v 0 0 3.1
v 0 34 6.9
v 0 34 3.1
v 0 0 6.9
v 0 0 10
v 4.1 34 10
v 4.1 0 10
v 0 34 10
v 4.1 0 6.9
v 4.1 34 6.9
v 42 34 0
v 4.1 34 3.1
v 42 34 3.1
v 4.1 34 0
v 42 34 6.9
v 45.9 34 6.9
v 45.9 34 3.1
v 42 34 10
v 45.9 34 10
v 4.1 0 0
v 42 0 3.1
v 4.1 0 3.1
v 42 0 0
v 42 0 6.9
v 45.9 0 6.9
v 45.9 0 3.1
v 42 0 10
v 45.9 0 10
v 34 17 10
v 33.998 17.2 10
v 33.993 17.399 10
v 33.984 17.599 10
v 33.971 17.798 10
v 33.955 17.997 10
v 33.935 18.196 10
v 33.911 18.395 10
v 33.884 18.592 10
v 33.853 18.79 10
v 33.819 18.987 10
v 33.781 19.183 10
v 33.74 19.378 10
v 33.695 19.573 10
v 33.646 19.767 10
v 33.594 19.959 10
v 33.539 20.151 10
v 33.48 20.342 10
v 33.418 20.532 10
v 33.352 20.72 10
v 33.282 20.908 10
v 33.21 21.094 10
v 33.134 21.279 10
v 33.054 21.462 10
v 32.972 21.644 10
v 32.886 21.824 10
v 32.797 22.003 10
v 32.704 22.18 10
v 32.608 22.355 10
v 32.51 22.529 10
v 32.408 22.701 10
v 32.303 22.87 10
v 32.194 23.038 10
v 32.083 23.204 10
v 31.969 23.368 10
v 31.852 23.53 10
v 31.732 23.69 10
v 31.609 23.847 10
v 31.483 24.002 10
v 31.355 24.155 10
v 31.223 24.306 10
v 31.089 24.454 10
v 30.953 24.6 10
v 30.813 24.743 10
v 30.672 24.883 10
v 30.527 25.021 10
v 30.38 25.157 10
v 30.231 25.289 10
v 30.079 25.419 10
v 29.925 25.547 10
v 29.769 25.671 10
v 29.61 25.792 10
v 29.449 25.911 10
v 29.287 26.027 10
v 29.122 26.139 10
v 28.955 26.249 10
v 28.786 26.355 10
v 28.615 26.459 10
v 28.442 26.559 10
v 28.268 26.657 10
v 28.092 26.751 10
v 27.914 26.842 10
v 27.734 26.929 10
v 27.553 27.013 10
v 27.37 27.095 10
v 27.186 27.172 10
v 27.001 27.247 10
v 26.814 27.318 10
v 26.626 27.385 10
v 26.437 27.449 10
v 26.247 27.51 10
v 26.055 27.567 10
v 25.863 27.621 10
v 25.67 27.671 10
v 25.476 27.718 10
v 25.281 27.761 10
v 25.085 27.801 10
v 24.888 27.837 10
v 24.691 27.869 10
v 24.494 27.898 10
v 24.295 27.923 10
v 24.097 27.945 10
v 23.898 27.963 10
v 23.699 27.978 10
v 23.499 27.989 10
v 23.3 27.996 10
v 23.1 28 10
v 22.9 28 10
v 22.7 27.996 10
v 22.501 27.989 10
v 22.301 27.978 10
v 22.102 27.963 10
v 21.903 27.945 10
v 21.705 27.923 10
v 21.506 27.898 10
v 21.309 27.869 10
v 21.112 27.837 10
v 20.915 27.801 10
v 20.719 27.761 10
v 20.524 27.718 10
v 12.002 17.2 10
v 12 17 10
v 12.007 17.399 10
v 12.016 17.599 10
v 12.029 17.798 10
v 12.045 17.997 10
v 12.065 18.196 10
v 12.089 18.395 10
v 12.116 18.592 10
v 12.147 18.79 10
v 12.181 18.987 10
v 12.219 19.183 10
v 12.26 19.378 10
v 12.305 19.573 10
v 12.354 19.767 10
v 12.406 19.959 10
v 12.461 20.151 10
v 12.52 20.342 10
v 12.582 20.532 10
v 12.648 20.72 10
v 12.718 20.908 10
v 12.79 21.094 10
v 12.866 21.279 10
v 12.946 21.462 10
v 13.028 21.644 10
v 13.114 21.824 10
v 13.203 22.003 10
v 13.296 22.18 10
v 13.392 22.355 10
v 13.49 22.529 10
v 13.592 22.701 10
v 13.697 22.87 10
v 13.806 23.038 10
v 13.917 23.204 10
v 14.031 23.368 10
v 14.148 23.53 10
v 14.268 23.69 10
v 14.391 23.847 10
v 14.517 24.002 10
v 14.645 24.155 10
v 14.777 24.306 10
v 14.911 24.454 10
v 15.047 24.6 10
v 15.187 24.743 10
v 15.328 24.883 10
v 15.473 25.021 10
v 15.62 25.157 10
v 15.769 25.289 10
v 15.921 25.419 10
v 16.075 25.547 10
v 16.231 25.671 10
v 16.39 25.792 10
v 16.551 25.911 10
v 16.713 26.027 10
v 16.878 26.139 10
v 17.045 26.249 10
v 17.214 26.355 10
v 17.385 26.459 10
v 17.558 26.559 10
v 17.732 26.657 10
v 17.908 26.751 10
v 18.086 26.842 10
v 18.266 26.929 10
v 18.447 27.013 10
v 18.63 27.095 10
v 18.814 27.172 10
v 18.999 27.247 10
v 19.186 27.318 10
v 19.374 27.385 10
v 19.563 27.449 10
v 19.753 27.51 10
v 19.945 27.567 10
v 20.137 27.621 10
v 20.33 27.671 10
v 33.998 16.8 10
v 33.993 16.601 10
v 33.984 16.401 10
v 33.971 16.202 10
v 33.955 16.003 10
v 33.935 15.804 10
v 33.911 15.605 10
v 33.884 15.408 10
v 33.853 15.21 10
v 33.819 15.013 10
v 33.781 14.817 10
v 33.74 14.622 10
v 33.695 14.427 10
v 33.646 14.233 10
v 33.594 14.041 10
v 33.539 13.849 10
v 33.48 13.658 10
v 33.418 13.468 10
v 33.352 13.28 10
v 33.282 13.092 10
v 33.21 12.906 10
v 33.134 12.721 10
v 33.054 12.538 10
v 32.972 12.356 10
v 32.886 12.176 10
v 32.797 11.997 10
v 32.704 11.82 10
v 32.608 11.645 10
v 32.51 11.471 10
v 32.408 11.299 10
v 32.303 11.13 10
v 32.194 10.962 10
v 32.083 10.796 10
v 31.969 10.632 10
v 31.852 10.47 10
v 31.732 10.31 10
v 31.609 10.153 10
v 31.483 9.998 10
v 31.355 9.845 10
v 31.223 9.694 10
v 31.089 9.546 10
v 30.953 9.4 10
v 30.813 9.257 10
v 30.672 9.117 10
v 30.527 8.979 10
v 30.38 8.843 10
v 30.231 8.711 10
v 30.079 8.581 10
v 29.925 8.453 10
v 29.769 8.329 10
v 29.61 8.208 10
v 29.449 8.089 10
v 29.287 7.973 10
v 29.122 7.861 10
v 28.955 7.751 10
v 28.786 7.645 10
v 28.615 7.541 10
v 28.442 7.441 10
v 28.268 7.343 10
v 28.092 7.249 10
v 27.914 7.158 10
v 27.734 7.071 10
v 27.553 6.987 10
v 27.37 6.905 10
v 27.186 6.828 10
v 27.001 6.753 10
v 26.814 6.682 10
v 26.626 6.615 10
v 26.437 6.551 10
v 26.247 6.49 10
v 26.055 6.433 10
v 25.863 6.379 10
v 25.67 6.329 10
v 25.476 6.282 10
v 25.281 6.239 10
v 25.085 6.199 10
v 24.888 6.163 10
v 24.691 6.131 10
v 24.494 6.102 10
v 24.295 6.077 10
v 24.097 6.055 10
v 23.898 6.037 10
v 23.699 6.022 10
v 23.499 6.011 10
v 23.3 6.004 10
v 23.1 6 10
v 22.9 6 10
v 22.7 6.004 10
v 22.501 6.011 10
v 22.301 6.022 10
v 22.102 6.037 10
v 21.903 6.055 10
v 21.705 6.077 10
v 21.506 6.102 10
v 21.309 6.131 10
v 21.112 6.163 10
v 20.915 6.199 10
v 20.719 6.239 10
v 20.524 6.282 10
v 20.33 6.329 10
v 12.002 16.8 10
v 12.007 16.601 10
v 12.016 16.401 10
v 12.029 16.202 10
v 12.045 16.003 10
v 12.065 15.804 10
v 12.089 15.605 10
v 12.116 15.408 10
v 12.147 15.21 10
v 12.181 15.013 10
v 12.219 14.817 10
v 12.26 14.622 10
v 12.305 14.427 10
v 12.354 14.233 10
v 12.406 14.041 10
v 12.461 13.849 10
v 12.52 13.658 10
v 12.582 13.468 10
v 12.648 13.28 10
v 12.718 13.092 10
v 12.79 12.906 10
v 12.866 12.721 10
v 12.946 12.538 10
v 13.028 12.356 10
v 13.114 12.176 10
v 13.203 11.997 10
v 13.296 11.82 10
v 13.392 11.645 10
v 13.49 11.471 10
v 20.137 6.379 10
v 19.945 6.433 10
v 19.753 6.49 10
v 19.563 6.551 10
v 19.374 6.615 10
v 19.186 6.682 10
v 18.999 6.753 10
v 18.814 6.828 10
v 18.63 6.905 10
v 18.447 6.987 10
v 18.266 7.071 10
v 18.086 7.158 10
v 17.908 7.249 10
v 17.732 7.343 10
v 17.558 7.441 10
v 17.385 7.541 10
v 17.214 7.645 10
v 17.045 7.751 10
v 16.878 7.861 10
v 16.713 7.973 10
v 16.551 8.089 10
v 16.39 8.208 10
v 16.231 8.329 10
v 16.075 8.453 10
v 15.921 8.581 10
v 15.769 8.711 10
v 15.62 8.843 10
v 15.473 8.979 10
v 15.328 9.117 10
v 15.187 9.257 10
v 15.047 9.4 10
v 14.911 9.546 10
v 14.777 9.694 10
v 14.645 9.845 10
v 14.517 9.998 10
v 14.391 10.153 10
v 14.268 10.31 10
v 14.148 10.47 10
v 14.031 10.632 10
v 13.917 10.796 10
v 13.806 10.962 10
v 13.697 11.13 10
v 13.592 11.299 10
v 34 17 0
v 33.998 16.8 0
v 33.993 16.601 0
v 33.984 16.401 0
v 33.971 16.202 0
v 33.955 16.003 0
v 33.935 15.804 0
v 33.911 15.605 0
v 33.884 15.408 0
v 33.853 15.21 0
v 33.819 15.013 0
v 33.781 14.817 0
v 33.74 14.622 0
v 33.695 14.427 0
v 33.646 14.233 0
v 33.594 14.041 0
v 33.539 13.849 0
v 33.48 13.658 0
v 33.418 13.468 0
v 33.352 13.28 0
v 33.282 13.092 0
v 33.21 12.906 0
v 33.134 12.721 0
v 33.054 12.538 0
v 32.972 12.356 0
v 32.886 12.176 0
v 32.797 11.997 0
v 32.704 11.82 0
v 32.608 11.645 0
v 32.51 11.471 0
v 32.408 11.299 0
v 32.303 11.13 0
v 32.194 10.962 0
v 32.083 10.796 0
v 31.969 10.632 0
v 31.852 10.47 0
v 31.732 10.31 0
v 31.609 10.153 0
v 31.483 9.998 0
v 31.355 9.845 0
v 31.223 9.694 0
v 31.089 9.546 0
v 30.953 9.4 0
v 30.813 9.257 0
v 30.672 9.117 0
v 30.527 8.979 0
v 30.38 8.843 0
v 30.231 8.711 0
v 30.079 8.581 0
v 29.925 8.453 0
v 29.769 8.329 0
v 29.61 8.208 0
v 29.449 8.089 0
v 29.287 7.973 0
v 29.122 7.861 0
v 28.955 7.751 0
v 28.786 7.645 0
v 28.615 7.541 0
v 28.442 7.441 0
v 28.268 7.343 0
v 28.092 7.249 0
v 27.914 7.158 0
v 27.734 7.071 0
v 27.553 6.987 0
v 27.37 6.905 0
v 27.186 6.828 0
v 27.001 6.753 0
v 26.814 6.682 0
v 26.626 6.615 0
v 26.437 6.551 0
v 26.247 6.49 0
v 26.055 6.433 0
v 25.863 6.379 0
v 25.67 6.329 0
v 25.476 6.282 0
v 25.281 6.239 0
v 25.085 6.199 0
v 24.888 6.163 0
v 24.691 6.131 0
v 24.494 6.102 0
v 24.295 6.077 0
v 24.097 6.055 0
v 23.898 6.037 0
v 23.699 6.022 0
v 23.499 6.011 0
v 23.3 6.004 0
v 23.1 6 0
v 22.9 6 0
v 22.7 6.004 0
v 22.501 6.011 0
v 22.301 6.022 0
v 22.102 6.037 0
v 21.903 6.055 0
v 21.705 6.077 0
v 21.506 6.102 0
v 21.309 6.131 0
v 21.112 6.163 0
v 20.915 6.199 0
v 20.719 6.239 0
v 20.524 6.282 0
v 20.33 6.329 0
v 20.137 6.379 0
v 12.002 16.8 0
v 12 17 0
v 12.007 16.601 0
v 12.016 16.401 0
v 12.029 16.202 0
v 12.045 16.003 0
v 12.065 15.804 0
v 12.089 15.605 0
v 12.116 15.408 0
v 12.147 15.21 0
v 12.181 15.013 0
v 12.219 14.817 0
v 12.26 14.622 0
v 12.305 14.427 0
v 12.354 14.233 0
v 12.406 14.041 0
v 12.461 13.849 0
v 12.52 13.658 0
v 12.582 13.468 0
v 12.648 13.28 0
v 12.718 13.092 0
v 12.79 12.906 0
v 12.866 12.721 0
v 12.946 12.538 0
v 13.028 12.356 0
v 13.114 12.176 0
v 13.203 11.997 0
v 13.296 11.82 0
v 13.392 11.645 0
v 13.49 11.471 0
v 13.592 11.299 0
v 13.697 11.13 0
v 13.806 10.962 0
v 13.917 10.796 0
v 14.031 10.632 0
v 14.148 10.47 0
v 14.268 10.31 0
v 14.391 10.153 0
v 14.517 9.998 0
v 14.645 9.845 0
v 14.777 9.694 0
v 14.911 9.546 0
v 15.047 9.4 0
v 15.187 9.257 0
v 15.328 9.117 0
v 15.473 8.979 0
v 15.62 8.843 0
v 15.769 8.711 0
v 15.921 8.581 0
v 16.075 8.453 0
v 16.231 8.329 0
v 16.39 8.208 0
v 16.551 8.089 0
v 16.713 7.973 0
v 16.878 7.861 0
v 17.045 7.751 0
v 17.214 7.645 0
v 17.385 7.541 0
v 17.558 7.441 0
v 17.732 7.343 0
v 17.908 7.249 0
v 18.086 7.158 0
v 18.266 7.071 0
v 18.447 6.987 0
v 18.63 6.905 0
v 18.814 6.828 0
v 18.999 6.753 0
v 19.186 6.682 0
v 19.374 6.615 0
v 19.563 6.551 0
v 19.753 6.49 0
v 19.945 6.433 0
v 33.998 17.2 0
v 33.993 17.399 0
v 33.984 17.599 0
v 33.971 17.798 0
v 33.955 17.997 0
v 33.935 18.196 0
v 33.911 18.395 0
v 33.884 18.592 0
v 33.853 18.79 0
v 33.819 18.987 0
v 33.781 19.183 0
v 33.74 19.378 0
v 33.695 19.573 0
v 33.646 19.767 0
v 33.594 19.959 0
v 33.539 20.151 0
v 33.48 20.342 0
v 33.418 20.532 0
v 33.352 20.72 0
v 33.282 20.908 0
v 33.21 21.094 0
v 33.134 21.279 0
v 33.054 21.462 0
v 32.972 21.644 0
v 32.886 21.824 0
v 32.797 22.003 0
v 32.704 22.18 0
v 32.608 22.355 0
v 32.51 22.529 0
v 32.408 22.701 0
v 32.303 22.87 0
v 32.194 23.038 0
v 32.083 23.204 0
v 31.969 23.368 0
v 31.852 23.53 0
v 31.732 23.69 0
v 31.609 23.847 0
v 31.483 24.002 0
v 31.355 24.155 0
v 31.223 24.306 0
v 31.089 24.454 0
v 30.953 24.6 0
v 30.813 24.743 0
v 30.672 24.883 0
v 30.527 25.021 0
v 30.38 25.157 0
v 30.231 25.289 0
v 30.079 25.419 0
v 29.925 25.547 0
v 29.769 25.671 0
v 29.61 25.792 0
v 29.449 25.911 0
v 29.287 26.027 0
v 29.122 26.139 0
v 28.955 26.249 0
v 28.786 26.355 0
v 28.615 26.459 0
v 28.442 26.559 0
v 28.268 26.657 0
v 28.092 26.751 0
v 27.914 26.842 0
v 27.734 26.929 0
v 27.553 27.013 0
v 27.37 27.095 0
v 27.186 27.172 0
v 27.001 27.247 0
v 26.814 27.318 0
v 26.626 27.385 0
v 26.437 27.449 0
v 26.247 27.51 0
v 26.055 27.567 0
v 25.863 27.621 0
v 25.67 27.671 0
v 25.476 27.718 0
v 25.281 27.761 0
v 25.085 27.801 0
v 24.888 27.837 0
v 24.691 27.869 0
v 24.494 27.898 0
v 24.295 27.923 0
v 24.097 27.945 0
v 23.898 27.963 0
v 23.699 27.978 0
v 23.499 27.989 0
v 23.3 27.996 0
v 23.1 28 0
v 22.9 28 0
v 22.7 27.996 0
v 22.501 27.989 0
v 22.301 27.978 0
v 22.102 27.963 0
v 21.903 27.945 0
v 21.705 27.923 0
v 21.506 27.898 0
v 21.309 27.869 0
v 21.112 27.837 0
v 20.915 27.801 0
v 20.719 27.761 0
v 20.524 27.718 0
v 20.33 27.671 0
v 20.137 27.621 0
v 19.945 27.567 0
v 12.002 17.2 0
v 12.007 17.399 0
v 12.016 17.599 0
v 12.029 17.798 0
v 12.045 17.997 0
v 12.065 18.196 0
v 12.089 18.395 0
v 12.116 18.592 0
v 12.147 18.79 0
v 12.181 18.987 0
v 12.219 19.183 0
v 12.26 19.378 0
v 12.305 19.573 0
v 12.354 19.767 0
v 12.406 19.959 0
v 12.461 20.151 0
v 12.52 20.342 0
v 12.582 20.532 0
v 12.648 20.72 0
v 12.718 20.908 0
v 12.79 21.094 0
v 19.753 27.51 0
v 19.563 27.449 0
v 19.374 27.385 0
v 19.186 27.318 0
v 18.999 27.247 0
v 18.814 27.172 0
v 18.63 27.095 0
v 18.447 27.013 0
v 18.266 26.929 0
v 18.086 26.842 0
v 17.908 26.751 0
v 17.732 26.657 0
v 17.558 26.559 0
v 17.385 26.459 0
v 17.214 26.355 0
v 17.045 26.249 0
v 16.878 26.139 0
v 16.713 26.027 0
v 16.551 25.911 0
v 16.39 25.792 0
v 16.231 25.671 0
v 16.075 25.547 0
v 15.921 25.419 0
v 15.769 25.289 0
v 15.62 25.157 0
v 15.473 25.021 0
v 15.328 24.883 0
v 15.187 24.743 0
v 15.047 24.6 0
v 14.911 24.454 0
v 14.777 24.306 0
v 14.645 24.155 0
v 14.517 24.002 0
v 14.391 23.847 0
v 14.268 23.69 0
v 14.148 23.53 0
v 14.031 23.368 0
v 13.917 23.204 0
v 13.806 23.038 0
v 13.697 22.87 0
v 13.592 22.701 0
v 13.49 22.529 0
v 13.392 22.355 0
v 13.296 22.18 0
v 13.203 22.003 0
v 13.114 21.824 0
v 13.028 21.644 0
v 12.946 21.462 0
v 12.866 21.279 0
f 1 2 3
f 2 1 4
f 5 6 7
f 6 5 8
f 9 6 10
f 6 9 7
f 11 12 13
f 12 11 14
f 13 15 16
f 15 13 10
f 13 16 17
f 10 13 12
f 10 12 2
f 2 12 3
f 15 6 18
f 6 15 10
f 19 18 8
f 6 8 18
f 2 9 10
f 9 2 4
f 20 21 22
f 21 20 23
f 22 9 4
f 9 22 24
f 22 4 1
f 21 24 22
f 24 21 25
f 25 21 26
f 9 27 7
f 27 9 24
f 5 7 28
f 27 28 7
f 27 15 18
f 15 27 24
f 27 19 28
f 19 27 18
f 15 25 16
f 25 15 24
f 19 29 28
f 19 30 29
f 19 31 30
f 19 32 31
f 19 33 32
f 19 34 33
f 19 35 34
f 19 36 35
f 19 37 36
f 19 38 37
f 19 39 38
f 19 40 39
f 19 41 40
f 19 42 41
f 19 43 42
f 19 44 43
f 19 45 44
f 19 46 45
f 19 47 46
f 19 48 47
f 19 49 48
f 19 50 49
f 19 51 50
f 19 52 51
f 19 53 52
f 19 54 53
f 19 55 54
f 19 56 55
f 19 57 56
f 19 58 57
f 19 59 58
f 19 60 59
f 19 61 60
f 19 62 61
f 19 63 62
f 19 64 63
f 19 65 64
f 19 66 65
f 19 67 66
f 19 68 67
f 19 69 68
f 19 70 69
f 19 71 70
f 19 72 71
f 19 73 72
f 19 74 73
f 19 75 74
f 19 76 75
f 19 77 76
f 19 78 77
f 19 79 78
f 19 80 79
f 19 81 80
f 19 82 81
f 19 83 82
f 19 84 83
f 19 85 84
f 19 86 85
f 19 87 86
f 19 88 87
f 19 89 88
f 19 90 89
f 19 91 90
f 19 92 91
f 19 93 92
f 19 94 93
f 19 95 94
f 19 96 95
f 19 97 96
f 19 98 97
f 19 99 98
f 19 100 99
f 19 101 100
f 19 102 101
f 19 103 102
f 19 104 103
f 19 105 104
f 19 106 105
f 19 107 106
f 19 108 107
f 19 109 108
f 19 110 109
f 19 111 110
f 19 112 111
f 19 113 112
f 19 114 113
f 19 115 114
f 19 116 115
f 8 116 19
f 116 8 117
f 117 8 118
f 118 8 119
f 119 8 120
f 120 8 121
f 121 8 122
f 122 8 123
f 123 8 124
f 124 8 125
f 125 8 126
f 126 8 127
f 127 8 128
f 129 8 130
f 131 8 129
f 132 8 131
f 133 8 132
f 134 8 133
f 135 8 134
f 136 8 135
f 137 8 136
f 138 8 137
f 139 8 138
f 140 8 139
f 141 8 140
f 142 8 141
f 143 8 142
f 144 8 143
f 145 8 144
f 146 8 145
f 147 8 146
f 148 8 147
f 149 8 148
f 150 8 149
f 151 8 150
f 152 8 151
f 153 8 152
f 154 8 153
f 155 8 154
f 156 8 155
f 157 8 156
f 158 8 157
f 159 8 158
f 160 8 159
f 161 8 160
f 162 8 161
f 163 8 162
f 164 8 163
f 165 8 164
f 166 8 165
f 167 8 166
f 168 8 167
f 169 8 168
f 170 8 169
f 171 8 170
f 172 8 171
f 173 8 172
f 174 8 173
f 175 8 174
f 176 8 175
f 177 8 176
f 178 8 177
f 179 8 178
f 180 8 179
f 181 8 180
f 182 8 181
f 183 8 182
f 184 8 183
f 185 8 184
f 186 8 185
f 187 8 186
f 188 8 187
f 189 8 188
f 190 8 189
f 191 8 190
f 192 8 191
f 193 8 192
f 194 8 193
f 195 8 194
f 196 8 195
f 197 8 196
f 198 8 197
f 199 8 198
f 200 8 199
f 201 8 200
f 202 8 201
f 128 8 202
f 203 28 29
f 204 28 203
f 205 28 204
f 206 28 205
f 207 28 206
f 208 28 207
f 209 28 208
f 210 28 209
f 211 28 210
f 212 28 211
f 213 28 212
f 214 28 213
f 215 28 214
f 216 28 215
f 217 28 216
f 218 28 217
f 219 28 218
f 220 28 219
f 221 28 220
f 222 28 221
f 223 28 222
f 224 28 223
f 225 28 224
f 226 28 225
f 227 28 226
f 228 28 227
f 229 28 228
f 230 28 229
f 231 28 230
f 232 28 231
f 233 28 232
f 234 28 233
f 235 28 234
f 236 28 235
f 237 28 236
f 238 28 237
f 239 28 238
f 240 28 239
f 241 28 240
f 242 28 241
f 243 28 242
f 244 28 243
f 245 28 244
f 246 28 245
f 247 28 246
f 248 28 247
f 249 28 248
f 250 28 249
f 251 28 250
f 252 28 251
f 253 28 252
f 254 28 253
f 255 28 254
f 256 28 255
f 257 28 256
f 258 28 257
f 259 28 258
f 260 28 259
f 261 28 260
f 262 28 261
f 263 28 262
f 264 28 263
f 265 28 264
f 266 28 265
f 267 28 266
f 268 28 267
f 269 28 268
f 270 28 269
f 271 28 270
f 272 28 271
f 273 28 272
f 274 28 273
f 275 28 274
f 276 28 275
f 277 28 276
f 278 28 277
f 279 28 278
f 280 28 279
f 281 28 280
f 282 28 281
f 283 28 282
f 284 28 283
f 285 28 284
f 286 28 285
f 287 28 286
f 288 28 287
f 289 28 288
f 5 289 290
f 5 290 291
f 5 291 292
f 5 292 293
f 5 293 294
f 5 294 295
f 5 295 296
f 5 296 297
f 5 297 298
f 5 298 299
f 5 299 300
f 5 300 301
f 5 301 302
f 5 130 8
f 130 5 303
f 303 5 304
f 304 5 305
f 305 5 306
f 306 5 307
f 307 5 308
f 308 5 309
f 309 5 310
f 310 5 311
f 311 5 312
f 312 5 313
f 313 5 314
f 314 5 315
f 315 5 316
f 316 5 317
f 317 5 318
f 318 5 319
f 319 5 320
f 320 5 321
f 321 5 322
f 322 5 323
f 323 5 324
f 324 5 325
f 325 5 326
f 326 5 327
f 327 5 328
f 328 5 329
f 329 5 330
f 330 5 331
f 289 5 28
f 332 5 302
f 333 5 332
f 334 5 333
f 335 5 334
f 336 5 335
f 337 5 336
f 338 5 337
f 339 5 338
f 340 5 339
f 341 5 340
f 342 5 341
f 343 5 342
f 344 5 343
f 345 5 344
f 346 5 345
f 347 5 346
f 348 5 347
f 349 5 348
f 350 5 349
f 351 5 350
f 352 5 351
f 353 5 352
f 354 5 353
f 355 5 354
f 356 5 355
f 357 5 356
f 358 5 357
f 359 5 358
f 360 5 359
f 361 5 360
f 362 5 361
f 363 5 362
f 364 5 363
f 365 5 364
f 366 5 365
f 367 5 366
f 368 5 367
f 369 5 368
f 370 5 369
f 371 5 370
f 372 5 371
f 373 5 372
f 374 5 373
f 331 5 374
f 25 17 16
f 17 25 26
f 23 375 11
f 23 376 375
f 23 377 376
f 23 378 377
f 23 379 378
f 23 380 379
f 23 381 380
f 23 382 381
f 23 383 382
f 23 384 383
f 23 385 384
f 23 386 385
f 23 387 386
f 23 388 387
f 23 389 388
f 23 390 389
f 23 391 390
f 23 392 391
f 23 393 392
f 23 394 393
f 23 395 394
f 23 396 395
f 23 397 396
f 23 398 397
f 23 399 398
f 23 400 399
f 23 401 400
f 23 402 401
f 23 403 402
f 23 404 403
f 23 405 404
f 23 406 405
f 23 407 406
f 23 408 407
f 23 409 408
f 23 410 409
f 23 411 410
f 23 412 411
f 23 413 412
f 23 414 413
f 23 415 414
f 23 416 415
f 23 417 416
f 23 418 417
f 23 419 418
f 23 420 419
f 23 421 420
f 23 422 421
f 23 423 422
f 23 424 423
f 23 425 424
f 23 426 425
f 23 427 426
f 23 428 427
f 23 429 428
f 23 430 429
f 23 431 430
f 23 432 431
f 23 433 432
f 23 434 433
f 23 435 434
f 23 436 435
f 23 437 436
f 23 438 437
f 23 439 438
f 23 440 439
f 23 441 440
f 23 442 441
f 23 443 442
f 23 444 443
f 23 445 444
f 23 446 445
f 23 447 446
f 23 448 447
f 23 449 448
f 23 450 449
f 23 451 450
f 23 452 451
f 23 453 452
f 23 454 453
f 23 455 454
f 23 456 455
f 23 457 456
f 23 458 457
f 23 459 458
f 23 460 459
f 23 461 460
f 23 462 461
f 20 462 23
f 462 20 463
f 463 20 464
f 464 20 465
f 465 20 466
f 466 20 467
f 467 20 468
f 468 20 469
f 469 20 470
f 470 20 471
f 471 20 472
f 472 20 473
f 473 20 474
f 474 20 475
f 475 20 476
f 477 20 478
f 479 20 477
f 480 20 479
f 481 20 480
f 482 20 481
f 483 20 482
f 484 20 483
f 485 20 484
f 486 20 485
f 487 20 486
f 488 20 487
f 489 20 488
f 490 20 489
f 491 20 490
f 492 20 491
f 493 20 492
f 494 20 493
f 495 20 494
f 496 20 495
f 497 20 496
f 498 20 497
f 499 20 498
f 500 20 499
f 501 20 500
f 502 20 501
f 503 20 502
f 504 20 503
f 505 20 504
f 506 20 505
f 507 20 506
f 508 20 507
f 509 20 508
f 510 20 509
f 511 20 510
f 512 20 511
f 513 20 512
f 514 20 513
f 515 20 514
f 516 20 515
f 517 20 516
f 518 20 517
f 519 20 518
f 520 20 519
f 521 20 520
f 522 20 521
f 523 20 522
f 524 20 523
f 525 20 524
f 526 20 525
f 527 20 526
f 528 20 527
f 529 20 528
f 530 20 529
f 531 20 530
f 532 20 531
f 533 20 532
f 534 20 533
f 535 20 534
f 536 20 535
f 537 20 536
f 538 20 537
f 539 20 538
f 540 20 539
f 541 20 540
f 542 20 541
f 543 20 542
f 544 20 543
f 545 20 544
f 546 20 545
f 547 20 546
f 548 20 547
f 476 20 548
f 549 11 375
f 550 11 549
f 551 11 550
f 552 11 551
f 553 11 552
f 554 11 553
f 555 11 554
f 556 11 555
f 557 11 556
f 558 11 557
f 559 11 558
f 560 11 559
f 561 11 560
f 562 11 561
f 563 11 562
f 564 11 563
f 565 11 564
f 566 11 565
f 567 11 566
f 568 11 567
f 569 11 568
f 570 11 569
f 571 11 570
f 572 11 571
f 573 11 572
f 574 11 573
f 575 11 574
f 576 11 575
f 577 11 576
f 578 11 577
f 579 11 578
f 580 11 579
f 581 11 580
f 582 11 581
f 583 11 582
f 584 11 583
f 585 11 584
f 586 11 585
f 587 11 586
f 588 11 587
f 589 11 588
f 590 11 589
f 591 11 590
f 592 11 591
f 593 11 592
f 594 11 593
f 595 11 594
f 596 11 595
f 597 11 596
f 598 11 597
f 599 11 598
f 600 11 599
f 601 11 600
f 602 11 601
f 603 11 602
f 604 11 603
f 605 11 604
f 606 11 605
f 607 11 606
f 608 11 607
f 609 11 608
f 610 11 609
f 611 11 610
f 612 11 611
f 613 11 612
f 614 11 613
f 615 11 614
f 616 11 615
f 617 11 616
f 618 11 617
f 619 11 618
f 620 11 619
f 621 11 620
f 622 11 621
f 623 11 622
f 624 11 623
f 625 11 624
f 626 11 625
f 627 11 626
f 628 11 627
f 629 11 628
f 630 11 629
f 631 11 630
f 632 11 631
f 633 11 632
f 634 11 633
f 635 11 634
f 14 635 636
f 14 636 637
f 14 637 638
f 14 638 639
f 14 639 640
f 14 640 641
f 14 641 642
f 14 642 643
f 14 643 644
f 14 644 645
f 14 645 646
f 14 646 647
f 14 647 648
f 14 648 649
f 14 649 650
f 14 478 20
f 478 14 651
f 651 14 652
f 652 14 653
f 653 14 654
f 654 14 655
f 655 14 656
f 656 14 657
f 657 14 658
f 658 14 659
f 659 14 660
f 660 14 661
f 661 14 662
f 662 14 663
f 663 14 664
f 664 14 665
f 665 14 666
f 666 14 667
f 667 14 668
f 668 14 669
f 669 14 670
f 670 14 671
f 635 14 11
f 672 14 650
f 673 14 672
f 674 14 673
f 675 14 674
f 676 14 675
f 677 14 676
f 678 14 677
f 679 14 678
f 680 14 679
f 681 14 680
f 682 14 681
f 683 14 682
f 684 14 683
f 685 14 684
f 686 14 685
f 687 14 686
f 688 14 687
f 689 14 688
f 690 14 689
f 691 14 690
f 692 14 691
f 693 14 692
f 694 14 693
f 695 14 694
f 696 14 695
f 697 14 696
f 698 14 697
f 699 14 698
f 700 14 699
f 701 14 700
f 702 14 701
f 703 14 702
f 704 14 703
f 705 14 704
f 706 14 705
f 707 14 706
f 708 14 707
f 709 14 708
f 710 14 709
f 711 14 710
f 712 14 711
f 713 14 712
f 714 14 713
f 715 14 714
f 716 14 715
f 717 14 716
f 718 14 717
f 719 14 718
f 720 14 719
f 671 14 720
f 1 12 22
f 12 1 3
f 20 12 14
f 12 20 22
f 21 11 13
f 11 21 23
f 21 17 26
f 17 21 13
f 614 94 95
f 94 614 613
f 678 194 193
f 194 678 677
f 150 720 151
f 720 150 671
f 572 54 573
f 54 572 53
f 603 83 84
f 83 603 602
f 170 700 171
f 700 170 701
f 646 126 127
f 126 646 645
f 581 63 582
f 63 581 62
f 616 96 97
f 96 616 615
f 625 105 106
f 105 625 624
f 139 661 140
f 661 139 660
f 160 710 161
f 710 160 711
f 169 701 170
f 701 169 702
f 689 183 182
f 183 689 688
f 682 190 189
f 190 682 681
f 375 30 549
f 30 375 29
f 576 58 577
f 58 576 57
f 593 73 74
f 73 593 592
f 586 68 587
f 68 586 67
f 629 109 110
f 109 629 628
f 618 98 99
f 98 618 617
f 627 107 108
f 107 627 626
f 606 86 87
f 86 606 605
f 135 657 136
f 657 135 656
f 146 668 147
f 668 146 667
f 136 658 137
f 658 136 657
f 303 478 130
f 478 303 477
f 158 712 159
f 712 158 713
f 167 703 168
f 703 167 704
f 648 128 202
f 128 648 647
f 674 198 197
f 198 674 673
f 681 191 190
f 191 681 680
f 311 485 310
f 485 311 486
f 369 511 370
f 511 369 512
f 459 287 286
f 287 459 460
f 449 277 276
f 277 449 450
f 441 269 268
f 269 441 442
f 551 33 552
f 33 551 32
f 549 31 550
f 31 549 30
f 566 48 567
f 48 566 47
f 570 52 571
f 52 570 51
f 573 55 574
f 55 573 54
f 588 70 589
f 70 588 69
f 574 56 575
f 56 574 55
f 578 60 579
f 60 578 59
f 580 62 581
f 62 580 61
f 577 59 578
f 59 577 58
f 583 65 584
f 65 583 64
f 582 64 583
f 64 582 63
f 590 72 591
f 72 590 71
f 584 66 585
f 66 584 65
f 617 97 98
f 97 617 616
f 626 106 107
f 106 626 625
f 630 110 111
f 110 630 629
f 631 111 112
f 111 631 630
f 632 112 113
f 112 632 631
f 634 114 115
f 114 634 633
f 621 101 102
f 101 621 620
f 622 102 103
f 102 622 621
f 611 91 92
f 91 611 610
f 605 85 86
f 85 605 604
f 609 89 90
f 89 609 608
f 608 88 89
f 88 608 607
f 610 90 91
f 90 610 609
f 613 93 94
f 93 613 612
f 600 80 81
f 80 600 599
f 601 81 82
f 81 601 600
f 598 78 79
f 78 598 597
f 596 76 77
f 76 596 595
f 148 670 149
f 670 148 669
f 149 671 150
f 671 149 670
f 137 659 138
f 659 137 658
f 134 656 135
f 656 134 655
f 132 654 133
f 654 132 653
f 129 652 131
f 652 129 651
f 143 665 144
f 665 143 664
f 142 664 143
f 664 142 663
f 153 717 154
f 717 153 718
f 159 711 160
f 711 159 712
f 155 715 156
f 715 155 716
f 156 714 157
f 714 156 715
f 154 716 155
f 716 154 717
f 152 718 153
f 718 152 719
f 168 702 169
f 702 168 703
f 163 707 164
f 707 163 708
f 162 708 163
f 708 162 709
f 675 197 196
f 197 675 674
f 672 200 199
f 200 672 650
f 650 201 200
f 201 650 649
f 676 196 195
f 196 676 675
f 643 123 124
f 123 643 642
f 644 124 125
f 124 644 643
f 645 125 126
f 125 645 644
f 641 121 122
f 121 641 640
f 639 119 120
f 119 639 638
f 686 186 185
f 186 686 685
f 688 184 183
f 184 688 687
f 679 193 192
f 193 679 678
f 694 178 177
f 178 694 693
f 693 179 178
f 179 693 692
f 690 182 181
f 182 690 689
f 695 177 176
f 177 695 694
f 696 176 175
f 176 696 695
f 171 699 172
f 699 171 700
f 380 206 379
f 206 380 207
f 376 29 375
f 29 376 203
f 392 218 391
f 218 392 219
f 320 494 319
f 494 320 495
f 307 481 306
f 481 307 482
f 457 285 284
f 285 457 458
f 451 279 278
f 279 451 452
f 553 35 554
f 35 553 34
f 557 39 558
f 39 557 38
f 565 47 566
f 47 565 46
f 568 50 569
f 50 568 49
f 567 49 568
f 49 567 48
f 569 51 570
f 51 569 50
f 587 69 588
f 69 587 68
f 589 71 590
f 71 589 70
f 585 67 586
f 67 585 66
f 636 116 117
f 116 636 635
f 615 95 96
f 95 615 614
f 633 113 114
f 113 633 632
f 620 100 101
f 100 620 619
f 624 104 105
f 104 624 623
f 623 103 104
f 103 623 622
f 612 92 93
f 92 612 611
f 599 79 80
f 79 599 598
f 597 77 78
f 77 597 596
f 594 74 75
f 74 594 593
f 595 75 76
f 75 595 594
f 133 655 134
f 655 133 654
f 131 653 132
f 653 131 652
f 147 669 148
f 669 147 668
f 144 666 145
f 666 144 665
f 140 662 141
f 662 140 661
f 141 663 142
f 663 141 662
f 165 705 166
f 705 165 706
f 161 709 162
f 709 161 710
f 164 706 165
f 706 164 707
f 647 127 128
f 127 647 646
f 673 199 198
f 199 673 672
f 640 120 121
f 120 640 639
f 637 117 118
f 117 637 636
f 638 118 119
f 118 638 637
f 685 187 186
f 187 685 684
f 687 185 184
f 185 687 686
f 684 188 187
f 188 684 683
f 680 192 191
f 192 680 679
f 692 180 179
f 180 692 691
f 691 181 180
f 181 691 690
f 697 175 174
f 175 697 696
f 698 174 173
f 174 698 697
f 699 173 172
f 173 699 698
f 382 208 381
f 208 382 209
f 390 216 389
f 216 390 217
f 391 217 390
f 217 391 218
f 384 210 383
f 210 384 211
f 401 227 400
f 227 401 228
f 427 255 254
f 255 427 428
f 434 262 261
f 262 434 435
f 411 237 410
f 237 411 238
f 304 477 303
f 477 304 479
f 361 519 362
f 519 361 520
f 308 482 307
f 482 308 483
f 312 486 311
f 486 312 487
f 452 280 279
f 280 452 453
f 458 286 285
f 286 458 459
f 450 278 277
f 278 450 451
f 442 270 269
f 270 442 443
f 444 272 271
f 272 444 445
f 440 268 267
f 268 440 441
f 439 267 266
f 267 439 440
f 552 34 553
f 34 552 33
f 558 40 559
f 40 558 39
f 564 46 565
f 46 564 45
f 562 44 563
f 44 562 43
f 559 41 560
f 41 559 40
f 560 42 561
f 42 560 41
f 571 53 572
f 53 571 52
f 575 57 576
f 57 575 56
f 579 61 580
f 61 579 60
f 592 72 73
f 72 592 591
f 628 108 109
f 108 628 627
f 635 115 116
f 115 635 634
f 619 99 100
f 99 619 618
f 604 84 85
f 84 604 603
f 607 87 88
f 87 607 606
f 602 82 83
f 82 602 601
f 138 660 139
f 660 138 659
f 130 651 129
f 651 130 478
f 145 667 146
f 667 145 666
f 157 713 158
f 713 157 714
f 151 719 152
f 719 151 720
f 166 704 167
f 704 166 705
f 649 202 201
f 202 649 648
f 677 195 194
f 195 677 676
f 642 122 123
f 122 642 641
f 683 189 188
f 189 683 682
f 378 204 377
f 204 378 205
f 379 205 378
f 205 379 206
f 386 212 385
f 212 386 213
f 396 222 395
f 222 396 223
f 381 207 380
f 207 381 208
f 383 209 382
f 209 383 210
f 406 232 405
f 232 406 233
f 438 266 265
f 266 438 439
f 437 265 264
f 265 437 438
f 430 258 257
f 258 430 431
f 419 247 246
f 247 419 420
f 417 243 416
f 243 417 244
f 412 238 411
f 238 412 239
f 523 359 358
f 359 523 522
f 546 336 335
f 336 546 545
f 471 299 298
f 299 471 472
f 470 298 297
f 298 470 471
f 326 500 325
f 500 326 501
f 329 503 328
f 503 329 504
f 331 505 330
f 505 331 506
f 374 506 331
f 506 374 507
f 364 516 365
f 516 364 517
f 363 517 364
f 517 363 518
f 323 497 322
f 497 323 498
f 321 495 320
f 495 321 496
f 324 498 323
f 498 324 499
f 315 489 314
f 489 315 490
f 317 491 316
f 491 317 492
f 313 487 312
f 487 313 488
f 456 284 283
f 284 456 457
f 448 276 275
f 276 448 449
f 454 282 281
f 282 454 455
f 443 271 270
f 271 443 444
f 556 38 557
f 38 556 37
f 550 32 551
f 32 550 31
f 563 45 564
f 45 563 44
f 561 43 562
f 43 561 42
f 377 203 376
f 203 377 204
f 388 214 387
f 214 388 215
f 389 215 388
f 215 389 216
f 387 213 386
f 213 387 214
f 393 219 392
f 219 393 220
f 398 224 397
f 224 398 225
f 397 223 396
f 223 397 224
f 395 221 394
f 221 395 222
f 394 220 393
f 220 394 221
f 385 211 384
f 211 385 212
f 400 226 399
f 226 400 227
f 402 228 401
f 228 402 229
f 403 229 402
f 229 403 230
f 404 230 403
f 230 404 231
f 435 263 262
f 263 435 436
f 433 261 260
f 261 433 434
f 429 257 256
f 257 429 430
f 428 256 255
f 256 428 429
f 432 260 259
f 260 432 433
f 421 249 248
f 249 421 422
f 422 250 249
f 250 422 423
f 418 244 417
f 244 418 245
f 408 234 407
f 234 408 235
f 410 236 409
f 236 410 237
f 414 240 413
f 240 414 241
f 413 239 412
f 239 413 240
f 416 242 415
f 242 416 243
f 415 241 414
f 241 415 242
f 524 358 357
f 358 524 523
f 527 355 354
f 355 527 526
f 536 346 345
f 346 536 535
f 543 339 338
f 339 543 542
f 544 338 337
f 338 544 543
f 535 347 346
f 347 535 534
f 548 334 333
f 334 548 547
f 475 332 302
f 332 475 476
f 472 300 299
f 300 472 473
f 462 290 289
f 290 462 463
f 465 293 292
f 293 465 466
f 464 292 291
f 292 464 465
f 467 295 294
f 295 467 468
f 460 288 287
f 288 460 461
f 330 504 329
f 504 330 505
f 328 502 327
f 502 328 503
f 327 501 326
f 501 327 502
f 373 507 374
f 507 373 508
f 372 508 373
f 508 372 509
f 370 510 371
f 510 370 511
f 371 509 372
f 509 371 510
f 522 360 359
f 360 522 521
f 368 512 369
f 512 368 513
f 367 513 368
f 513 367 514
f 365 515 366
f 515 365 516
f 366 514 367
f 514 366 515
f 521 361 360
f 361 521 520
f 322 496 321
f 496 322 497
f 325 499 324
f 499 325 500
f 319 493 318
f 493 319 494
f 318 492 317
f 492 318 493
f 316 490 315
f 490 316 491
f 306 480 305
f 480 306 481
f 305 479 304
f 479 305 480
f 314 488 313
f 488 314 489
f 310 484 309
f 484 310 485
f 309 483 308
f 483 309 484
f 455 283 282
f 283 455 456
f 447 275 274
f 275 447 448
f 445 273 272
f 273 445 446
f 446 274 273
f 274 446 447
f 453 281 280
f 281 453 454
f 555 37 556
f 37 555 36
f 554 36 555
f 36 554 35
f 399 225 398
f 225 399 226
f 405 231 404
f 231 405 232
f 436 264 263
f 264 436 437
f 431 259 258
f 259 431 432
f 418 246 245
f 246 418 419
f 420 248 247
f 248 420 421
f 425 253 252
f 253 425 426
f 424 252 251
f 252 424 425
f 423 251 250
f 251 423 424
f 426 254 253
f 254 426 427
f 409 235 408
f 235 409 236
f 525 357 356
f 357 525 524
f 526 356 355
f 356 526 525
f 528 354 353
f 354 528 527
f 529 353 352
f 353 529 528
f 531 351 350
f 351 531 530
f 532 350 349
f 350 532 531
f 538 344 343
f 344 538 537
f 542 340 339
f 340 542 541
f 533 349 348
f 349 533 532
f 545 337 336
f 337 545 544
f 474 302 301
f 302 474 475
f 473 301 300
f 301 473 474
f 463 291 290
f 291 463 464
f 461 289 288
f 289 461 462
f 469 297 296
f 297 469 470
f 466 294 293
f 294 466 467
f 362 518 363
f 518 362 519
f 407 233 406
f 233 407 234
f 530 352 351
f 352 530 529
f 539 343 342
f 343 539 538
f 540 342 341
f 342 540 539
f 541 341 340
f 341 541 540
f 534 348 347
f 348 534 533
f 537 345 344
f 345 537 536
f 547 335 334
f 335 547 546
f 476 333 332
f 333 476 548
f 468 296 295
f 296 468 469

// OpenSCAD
// file: config.scad
$fa = 1;
$fs = 0.2;

bearing_outer_dia = 22;
bearing_inner_dia = 10;
bearing_padding = 8;

casing_width = 10;

post_height = 100;
post_base_height = 20;
post_groove_width = 4;
post_groove_depth = 4;
post_groove_offset = 4;

base_margin = 5;
post_base_width = casing_width;
post_length = 2*(post_groove_offset + post_groove_depth + bearing_padding) + bearing_outer_dia;
post_separation = 210;

base_length = post_length + 2 * base_margin;
base_width = post_separation + 2 * base_margin;
base_height = 10;

// groove to groove distance
casing_length = 2*(post_groove_depth + bearing_padding) + bearing_outer_dia;
casing_height = 1.5 * bearing_padding + bearing_outer_dia;

roller_width = 200;
roller_padding = post_separation - roller_width;
roller_stem_protrusion = 20;
roller_groove_toroid_radius = 2;
roller_stem_depth = 50;
// main file
include<config.scad>

delta = 0.1;

difference() {
    cube([casing_length-delta, casing_height, casing_width]);
    cube([post_groove_depth+delta, casing_height, (casing_width - post_groove_width)/2+delta]);
    translate([casing_length - post_groove_depth, 0, 0])
        cube([post_groove_depth+delta, casing_height, (casing_width - post_groove_width)/2+delta]);
    
    translate([0, 0, (casing_width - post_groove_width)/2 + post_groove_width-delta]) {
        cube([post_groove_depth+delta, casing_height, (casing_width - post_groove_width)/2+delta]);
        translate([casing_length - post_groove_depth, 0, 0])
            cube([post_groove_depth+delta, casing_height, (casing_width - post_groove_width)/2+delta]);
    }

    translate([casing_length/2, casing_height/2, 0]) {
        cylinder(r = bearing_outer_dia/2, h = casing_width);
    }
}
